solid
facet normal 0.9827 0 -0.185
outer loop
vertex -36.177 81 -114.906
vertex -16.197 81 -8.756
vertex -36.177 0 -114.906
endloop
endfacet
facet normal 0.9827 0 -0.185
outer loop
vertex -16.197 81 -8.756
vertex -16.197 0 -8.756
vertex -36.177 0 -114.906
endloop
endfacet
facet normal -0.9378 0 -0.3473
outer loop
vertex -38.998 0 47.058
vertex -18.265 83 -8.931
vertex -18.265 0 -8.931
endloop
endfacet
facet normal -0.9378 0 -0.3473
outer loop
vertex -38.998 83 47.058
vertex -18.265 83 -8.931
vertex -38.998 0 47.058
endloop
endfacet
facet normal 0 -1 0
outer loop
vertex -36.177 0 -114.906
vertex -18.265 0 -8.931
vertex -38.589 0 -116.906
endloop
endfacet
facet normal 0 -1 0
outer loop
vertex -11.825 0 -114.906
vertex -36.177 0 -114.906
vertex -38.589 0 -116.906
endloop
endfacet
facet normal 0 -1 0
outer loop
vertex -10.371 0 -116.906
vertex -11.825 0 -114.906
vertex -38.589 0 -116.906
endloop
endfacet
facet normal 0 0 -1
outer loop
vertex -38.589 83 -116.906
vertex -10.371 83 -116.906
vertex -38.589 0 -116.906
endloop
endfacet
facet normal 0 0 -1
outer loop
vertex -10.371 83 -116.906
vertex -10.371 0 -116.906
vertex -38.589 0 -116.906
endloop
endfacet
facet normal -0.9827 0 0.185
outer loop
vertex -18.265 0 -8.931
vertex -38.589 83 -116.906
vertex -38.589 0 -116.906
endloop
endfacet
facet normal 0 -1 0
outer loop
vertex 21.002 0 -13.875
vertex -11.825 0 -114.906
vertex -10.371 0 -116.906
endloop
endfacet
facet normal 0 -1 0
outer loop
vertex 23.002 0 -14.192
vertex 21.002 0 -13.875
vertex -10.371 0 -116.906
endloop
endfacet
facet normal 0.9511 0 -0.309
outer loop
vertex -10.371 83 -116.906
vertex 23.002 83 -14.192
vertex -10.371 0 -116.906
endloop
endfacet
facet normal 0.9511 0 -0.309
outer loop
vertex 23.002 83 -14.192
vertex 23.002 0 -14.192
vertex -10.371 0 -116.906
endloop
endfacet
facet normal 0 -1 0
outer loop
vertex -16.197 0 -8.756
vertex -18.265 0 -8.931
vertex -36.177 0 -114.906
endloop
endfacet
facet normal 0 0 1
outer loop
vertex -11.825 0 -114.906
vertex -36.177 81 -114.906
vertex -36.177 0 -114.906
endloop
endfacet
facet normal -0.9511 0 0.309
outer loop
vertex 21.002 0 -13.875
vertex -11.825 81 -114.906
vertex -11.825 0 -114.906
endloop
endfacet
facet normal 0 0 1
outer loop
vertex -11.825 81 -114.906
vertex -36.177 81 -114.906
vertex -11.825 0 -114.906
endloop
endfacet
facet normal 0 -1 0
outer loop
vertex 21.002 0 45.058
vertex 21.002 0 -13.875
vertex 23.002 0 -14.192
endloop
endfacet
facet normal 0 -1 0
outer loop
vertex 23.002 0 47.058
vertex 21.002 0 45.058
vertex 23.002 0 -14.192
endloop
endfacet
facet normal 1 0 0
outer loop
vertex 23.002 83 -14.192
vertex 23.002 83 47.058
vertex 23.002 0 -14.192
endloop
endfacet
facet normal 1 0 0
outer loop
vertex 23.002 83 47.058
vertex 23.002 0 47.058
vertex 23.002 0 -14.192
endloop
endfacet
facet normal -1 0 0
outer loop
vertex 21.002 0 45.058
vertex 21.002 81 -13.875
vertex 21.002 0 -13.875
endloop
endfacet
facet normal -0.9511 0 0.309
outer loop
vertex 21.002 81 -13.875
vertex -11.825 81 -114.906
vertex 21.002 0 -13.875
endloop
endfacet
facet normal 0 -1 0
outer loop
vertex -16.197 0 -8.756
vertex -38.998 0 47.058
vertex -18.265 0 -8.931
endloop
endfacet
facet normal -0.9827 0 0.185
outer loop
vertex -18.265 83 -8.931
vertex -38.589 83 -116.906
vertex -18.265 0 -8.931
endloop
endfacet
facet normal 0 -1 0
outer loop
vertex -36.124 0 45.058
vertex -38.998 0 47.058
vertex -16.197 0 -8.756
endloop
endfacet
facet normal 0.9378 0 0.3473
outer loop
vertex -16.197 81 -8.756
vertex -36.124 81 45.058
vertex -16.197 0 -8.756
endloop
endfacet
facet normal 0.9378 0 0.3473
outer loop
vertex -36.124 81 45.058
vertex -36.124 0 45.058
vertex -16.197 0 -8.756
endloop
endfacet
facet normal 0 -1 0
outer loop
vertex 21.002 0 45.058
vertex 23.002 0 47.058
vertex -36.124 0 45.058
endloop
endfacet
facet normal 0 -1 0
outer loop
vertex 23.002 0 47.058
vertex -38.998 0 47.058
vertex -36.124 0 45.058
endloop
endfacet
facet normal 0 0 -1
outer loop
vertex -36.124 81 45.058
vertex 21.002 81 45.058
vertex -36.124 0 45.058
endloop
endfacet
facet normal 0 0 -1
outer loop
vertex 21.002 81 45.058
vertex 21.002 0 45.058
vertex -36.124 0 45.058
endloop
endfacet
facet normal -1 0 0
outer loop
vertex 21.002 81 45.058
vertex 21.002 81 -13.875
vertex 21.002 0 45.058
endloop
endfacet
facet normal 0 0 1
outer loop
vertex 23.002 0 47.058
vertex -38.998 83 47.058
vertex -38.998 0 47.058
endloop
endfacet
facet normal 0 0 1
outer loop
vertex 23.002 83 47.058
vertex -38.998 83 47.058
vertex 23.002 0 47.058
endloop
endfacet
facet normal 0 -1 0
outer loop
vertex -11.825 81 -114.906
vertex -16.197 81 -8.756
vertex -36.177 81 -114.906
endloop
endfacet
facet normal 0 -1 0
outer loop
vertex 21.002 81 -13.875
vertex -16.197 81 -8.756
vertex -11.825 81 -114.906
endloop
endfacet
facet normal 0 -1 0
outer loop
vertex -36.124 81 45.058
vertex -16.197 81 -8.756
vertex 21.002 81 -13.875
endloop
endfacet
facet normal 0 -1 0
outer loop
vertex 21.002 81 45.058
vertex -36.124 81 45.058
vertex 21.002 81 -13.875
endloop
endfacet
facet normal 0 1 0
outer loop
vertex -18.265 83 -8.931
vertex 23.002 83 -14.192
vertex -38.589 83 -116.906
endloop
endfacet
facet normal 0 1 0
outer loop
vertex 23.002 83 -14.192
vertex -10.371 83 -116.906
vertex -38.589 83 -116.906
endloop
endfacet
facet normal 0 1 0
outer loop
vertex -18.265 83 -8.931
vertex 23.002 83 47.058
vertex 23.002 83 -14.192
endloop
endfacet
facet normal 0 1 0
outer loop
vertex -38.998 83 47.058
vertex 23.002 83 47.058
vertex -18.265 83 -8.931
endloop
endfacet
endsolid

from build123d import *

# Parameters (mm, degrees)
BOSS_EXTRUDE1_DEPTH = 81
BOSS_EXTRUDE2_DEPTH = 2


with BuildPart() as part:
    # Sketch1 → Boss-Extrude1 (new body)
    with BuildSketch(Plane(origin=(0, 0, 0), x_dir=(1, 0, 0), z_dir=(0, 1, 0))):
        Polygon((23.002372201, -47.057873482), (-38.997627799, -47.057873482), (-18.264673723, 8.930513794), (-38.588834845, 116.906230278), (-10.371463192, 116.906230278), (23.002372201, 14.192126518), align=None)
        Polygon((-36.1242874, -45.057873482), (21.002372201, -45.057873482), (21.002372201, 13.875357637), (-11.824548248, 114.906230278), (-36.177255073, 114.906230278), (-16.196659594, 8.755767302), align=None, mode=Mode.SUBTRACT)
    extrude(amount=BOSS_EXTRUDE1_DEPTH)

    # Sketch2 → Boss-Extrude2 (add)
    with BuildSketch(Plane(origin=(0, 81, 0), x_dir=(1, 0, 0), z_dir=(0, 1, 0))):
        Polygon((-38.997627799, -47.057873482), (23.002372201, -47.057873482), (23.002372201, 14.192126518), (-10.371463192, 116.906230278), (-38.588834845, 116.906230278), (-18.264673723, 8.930513794), align=None)
    extrude(amount=BOSS_EXTRUDE2_DEPTH)


solid = part.part
